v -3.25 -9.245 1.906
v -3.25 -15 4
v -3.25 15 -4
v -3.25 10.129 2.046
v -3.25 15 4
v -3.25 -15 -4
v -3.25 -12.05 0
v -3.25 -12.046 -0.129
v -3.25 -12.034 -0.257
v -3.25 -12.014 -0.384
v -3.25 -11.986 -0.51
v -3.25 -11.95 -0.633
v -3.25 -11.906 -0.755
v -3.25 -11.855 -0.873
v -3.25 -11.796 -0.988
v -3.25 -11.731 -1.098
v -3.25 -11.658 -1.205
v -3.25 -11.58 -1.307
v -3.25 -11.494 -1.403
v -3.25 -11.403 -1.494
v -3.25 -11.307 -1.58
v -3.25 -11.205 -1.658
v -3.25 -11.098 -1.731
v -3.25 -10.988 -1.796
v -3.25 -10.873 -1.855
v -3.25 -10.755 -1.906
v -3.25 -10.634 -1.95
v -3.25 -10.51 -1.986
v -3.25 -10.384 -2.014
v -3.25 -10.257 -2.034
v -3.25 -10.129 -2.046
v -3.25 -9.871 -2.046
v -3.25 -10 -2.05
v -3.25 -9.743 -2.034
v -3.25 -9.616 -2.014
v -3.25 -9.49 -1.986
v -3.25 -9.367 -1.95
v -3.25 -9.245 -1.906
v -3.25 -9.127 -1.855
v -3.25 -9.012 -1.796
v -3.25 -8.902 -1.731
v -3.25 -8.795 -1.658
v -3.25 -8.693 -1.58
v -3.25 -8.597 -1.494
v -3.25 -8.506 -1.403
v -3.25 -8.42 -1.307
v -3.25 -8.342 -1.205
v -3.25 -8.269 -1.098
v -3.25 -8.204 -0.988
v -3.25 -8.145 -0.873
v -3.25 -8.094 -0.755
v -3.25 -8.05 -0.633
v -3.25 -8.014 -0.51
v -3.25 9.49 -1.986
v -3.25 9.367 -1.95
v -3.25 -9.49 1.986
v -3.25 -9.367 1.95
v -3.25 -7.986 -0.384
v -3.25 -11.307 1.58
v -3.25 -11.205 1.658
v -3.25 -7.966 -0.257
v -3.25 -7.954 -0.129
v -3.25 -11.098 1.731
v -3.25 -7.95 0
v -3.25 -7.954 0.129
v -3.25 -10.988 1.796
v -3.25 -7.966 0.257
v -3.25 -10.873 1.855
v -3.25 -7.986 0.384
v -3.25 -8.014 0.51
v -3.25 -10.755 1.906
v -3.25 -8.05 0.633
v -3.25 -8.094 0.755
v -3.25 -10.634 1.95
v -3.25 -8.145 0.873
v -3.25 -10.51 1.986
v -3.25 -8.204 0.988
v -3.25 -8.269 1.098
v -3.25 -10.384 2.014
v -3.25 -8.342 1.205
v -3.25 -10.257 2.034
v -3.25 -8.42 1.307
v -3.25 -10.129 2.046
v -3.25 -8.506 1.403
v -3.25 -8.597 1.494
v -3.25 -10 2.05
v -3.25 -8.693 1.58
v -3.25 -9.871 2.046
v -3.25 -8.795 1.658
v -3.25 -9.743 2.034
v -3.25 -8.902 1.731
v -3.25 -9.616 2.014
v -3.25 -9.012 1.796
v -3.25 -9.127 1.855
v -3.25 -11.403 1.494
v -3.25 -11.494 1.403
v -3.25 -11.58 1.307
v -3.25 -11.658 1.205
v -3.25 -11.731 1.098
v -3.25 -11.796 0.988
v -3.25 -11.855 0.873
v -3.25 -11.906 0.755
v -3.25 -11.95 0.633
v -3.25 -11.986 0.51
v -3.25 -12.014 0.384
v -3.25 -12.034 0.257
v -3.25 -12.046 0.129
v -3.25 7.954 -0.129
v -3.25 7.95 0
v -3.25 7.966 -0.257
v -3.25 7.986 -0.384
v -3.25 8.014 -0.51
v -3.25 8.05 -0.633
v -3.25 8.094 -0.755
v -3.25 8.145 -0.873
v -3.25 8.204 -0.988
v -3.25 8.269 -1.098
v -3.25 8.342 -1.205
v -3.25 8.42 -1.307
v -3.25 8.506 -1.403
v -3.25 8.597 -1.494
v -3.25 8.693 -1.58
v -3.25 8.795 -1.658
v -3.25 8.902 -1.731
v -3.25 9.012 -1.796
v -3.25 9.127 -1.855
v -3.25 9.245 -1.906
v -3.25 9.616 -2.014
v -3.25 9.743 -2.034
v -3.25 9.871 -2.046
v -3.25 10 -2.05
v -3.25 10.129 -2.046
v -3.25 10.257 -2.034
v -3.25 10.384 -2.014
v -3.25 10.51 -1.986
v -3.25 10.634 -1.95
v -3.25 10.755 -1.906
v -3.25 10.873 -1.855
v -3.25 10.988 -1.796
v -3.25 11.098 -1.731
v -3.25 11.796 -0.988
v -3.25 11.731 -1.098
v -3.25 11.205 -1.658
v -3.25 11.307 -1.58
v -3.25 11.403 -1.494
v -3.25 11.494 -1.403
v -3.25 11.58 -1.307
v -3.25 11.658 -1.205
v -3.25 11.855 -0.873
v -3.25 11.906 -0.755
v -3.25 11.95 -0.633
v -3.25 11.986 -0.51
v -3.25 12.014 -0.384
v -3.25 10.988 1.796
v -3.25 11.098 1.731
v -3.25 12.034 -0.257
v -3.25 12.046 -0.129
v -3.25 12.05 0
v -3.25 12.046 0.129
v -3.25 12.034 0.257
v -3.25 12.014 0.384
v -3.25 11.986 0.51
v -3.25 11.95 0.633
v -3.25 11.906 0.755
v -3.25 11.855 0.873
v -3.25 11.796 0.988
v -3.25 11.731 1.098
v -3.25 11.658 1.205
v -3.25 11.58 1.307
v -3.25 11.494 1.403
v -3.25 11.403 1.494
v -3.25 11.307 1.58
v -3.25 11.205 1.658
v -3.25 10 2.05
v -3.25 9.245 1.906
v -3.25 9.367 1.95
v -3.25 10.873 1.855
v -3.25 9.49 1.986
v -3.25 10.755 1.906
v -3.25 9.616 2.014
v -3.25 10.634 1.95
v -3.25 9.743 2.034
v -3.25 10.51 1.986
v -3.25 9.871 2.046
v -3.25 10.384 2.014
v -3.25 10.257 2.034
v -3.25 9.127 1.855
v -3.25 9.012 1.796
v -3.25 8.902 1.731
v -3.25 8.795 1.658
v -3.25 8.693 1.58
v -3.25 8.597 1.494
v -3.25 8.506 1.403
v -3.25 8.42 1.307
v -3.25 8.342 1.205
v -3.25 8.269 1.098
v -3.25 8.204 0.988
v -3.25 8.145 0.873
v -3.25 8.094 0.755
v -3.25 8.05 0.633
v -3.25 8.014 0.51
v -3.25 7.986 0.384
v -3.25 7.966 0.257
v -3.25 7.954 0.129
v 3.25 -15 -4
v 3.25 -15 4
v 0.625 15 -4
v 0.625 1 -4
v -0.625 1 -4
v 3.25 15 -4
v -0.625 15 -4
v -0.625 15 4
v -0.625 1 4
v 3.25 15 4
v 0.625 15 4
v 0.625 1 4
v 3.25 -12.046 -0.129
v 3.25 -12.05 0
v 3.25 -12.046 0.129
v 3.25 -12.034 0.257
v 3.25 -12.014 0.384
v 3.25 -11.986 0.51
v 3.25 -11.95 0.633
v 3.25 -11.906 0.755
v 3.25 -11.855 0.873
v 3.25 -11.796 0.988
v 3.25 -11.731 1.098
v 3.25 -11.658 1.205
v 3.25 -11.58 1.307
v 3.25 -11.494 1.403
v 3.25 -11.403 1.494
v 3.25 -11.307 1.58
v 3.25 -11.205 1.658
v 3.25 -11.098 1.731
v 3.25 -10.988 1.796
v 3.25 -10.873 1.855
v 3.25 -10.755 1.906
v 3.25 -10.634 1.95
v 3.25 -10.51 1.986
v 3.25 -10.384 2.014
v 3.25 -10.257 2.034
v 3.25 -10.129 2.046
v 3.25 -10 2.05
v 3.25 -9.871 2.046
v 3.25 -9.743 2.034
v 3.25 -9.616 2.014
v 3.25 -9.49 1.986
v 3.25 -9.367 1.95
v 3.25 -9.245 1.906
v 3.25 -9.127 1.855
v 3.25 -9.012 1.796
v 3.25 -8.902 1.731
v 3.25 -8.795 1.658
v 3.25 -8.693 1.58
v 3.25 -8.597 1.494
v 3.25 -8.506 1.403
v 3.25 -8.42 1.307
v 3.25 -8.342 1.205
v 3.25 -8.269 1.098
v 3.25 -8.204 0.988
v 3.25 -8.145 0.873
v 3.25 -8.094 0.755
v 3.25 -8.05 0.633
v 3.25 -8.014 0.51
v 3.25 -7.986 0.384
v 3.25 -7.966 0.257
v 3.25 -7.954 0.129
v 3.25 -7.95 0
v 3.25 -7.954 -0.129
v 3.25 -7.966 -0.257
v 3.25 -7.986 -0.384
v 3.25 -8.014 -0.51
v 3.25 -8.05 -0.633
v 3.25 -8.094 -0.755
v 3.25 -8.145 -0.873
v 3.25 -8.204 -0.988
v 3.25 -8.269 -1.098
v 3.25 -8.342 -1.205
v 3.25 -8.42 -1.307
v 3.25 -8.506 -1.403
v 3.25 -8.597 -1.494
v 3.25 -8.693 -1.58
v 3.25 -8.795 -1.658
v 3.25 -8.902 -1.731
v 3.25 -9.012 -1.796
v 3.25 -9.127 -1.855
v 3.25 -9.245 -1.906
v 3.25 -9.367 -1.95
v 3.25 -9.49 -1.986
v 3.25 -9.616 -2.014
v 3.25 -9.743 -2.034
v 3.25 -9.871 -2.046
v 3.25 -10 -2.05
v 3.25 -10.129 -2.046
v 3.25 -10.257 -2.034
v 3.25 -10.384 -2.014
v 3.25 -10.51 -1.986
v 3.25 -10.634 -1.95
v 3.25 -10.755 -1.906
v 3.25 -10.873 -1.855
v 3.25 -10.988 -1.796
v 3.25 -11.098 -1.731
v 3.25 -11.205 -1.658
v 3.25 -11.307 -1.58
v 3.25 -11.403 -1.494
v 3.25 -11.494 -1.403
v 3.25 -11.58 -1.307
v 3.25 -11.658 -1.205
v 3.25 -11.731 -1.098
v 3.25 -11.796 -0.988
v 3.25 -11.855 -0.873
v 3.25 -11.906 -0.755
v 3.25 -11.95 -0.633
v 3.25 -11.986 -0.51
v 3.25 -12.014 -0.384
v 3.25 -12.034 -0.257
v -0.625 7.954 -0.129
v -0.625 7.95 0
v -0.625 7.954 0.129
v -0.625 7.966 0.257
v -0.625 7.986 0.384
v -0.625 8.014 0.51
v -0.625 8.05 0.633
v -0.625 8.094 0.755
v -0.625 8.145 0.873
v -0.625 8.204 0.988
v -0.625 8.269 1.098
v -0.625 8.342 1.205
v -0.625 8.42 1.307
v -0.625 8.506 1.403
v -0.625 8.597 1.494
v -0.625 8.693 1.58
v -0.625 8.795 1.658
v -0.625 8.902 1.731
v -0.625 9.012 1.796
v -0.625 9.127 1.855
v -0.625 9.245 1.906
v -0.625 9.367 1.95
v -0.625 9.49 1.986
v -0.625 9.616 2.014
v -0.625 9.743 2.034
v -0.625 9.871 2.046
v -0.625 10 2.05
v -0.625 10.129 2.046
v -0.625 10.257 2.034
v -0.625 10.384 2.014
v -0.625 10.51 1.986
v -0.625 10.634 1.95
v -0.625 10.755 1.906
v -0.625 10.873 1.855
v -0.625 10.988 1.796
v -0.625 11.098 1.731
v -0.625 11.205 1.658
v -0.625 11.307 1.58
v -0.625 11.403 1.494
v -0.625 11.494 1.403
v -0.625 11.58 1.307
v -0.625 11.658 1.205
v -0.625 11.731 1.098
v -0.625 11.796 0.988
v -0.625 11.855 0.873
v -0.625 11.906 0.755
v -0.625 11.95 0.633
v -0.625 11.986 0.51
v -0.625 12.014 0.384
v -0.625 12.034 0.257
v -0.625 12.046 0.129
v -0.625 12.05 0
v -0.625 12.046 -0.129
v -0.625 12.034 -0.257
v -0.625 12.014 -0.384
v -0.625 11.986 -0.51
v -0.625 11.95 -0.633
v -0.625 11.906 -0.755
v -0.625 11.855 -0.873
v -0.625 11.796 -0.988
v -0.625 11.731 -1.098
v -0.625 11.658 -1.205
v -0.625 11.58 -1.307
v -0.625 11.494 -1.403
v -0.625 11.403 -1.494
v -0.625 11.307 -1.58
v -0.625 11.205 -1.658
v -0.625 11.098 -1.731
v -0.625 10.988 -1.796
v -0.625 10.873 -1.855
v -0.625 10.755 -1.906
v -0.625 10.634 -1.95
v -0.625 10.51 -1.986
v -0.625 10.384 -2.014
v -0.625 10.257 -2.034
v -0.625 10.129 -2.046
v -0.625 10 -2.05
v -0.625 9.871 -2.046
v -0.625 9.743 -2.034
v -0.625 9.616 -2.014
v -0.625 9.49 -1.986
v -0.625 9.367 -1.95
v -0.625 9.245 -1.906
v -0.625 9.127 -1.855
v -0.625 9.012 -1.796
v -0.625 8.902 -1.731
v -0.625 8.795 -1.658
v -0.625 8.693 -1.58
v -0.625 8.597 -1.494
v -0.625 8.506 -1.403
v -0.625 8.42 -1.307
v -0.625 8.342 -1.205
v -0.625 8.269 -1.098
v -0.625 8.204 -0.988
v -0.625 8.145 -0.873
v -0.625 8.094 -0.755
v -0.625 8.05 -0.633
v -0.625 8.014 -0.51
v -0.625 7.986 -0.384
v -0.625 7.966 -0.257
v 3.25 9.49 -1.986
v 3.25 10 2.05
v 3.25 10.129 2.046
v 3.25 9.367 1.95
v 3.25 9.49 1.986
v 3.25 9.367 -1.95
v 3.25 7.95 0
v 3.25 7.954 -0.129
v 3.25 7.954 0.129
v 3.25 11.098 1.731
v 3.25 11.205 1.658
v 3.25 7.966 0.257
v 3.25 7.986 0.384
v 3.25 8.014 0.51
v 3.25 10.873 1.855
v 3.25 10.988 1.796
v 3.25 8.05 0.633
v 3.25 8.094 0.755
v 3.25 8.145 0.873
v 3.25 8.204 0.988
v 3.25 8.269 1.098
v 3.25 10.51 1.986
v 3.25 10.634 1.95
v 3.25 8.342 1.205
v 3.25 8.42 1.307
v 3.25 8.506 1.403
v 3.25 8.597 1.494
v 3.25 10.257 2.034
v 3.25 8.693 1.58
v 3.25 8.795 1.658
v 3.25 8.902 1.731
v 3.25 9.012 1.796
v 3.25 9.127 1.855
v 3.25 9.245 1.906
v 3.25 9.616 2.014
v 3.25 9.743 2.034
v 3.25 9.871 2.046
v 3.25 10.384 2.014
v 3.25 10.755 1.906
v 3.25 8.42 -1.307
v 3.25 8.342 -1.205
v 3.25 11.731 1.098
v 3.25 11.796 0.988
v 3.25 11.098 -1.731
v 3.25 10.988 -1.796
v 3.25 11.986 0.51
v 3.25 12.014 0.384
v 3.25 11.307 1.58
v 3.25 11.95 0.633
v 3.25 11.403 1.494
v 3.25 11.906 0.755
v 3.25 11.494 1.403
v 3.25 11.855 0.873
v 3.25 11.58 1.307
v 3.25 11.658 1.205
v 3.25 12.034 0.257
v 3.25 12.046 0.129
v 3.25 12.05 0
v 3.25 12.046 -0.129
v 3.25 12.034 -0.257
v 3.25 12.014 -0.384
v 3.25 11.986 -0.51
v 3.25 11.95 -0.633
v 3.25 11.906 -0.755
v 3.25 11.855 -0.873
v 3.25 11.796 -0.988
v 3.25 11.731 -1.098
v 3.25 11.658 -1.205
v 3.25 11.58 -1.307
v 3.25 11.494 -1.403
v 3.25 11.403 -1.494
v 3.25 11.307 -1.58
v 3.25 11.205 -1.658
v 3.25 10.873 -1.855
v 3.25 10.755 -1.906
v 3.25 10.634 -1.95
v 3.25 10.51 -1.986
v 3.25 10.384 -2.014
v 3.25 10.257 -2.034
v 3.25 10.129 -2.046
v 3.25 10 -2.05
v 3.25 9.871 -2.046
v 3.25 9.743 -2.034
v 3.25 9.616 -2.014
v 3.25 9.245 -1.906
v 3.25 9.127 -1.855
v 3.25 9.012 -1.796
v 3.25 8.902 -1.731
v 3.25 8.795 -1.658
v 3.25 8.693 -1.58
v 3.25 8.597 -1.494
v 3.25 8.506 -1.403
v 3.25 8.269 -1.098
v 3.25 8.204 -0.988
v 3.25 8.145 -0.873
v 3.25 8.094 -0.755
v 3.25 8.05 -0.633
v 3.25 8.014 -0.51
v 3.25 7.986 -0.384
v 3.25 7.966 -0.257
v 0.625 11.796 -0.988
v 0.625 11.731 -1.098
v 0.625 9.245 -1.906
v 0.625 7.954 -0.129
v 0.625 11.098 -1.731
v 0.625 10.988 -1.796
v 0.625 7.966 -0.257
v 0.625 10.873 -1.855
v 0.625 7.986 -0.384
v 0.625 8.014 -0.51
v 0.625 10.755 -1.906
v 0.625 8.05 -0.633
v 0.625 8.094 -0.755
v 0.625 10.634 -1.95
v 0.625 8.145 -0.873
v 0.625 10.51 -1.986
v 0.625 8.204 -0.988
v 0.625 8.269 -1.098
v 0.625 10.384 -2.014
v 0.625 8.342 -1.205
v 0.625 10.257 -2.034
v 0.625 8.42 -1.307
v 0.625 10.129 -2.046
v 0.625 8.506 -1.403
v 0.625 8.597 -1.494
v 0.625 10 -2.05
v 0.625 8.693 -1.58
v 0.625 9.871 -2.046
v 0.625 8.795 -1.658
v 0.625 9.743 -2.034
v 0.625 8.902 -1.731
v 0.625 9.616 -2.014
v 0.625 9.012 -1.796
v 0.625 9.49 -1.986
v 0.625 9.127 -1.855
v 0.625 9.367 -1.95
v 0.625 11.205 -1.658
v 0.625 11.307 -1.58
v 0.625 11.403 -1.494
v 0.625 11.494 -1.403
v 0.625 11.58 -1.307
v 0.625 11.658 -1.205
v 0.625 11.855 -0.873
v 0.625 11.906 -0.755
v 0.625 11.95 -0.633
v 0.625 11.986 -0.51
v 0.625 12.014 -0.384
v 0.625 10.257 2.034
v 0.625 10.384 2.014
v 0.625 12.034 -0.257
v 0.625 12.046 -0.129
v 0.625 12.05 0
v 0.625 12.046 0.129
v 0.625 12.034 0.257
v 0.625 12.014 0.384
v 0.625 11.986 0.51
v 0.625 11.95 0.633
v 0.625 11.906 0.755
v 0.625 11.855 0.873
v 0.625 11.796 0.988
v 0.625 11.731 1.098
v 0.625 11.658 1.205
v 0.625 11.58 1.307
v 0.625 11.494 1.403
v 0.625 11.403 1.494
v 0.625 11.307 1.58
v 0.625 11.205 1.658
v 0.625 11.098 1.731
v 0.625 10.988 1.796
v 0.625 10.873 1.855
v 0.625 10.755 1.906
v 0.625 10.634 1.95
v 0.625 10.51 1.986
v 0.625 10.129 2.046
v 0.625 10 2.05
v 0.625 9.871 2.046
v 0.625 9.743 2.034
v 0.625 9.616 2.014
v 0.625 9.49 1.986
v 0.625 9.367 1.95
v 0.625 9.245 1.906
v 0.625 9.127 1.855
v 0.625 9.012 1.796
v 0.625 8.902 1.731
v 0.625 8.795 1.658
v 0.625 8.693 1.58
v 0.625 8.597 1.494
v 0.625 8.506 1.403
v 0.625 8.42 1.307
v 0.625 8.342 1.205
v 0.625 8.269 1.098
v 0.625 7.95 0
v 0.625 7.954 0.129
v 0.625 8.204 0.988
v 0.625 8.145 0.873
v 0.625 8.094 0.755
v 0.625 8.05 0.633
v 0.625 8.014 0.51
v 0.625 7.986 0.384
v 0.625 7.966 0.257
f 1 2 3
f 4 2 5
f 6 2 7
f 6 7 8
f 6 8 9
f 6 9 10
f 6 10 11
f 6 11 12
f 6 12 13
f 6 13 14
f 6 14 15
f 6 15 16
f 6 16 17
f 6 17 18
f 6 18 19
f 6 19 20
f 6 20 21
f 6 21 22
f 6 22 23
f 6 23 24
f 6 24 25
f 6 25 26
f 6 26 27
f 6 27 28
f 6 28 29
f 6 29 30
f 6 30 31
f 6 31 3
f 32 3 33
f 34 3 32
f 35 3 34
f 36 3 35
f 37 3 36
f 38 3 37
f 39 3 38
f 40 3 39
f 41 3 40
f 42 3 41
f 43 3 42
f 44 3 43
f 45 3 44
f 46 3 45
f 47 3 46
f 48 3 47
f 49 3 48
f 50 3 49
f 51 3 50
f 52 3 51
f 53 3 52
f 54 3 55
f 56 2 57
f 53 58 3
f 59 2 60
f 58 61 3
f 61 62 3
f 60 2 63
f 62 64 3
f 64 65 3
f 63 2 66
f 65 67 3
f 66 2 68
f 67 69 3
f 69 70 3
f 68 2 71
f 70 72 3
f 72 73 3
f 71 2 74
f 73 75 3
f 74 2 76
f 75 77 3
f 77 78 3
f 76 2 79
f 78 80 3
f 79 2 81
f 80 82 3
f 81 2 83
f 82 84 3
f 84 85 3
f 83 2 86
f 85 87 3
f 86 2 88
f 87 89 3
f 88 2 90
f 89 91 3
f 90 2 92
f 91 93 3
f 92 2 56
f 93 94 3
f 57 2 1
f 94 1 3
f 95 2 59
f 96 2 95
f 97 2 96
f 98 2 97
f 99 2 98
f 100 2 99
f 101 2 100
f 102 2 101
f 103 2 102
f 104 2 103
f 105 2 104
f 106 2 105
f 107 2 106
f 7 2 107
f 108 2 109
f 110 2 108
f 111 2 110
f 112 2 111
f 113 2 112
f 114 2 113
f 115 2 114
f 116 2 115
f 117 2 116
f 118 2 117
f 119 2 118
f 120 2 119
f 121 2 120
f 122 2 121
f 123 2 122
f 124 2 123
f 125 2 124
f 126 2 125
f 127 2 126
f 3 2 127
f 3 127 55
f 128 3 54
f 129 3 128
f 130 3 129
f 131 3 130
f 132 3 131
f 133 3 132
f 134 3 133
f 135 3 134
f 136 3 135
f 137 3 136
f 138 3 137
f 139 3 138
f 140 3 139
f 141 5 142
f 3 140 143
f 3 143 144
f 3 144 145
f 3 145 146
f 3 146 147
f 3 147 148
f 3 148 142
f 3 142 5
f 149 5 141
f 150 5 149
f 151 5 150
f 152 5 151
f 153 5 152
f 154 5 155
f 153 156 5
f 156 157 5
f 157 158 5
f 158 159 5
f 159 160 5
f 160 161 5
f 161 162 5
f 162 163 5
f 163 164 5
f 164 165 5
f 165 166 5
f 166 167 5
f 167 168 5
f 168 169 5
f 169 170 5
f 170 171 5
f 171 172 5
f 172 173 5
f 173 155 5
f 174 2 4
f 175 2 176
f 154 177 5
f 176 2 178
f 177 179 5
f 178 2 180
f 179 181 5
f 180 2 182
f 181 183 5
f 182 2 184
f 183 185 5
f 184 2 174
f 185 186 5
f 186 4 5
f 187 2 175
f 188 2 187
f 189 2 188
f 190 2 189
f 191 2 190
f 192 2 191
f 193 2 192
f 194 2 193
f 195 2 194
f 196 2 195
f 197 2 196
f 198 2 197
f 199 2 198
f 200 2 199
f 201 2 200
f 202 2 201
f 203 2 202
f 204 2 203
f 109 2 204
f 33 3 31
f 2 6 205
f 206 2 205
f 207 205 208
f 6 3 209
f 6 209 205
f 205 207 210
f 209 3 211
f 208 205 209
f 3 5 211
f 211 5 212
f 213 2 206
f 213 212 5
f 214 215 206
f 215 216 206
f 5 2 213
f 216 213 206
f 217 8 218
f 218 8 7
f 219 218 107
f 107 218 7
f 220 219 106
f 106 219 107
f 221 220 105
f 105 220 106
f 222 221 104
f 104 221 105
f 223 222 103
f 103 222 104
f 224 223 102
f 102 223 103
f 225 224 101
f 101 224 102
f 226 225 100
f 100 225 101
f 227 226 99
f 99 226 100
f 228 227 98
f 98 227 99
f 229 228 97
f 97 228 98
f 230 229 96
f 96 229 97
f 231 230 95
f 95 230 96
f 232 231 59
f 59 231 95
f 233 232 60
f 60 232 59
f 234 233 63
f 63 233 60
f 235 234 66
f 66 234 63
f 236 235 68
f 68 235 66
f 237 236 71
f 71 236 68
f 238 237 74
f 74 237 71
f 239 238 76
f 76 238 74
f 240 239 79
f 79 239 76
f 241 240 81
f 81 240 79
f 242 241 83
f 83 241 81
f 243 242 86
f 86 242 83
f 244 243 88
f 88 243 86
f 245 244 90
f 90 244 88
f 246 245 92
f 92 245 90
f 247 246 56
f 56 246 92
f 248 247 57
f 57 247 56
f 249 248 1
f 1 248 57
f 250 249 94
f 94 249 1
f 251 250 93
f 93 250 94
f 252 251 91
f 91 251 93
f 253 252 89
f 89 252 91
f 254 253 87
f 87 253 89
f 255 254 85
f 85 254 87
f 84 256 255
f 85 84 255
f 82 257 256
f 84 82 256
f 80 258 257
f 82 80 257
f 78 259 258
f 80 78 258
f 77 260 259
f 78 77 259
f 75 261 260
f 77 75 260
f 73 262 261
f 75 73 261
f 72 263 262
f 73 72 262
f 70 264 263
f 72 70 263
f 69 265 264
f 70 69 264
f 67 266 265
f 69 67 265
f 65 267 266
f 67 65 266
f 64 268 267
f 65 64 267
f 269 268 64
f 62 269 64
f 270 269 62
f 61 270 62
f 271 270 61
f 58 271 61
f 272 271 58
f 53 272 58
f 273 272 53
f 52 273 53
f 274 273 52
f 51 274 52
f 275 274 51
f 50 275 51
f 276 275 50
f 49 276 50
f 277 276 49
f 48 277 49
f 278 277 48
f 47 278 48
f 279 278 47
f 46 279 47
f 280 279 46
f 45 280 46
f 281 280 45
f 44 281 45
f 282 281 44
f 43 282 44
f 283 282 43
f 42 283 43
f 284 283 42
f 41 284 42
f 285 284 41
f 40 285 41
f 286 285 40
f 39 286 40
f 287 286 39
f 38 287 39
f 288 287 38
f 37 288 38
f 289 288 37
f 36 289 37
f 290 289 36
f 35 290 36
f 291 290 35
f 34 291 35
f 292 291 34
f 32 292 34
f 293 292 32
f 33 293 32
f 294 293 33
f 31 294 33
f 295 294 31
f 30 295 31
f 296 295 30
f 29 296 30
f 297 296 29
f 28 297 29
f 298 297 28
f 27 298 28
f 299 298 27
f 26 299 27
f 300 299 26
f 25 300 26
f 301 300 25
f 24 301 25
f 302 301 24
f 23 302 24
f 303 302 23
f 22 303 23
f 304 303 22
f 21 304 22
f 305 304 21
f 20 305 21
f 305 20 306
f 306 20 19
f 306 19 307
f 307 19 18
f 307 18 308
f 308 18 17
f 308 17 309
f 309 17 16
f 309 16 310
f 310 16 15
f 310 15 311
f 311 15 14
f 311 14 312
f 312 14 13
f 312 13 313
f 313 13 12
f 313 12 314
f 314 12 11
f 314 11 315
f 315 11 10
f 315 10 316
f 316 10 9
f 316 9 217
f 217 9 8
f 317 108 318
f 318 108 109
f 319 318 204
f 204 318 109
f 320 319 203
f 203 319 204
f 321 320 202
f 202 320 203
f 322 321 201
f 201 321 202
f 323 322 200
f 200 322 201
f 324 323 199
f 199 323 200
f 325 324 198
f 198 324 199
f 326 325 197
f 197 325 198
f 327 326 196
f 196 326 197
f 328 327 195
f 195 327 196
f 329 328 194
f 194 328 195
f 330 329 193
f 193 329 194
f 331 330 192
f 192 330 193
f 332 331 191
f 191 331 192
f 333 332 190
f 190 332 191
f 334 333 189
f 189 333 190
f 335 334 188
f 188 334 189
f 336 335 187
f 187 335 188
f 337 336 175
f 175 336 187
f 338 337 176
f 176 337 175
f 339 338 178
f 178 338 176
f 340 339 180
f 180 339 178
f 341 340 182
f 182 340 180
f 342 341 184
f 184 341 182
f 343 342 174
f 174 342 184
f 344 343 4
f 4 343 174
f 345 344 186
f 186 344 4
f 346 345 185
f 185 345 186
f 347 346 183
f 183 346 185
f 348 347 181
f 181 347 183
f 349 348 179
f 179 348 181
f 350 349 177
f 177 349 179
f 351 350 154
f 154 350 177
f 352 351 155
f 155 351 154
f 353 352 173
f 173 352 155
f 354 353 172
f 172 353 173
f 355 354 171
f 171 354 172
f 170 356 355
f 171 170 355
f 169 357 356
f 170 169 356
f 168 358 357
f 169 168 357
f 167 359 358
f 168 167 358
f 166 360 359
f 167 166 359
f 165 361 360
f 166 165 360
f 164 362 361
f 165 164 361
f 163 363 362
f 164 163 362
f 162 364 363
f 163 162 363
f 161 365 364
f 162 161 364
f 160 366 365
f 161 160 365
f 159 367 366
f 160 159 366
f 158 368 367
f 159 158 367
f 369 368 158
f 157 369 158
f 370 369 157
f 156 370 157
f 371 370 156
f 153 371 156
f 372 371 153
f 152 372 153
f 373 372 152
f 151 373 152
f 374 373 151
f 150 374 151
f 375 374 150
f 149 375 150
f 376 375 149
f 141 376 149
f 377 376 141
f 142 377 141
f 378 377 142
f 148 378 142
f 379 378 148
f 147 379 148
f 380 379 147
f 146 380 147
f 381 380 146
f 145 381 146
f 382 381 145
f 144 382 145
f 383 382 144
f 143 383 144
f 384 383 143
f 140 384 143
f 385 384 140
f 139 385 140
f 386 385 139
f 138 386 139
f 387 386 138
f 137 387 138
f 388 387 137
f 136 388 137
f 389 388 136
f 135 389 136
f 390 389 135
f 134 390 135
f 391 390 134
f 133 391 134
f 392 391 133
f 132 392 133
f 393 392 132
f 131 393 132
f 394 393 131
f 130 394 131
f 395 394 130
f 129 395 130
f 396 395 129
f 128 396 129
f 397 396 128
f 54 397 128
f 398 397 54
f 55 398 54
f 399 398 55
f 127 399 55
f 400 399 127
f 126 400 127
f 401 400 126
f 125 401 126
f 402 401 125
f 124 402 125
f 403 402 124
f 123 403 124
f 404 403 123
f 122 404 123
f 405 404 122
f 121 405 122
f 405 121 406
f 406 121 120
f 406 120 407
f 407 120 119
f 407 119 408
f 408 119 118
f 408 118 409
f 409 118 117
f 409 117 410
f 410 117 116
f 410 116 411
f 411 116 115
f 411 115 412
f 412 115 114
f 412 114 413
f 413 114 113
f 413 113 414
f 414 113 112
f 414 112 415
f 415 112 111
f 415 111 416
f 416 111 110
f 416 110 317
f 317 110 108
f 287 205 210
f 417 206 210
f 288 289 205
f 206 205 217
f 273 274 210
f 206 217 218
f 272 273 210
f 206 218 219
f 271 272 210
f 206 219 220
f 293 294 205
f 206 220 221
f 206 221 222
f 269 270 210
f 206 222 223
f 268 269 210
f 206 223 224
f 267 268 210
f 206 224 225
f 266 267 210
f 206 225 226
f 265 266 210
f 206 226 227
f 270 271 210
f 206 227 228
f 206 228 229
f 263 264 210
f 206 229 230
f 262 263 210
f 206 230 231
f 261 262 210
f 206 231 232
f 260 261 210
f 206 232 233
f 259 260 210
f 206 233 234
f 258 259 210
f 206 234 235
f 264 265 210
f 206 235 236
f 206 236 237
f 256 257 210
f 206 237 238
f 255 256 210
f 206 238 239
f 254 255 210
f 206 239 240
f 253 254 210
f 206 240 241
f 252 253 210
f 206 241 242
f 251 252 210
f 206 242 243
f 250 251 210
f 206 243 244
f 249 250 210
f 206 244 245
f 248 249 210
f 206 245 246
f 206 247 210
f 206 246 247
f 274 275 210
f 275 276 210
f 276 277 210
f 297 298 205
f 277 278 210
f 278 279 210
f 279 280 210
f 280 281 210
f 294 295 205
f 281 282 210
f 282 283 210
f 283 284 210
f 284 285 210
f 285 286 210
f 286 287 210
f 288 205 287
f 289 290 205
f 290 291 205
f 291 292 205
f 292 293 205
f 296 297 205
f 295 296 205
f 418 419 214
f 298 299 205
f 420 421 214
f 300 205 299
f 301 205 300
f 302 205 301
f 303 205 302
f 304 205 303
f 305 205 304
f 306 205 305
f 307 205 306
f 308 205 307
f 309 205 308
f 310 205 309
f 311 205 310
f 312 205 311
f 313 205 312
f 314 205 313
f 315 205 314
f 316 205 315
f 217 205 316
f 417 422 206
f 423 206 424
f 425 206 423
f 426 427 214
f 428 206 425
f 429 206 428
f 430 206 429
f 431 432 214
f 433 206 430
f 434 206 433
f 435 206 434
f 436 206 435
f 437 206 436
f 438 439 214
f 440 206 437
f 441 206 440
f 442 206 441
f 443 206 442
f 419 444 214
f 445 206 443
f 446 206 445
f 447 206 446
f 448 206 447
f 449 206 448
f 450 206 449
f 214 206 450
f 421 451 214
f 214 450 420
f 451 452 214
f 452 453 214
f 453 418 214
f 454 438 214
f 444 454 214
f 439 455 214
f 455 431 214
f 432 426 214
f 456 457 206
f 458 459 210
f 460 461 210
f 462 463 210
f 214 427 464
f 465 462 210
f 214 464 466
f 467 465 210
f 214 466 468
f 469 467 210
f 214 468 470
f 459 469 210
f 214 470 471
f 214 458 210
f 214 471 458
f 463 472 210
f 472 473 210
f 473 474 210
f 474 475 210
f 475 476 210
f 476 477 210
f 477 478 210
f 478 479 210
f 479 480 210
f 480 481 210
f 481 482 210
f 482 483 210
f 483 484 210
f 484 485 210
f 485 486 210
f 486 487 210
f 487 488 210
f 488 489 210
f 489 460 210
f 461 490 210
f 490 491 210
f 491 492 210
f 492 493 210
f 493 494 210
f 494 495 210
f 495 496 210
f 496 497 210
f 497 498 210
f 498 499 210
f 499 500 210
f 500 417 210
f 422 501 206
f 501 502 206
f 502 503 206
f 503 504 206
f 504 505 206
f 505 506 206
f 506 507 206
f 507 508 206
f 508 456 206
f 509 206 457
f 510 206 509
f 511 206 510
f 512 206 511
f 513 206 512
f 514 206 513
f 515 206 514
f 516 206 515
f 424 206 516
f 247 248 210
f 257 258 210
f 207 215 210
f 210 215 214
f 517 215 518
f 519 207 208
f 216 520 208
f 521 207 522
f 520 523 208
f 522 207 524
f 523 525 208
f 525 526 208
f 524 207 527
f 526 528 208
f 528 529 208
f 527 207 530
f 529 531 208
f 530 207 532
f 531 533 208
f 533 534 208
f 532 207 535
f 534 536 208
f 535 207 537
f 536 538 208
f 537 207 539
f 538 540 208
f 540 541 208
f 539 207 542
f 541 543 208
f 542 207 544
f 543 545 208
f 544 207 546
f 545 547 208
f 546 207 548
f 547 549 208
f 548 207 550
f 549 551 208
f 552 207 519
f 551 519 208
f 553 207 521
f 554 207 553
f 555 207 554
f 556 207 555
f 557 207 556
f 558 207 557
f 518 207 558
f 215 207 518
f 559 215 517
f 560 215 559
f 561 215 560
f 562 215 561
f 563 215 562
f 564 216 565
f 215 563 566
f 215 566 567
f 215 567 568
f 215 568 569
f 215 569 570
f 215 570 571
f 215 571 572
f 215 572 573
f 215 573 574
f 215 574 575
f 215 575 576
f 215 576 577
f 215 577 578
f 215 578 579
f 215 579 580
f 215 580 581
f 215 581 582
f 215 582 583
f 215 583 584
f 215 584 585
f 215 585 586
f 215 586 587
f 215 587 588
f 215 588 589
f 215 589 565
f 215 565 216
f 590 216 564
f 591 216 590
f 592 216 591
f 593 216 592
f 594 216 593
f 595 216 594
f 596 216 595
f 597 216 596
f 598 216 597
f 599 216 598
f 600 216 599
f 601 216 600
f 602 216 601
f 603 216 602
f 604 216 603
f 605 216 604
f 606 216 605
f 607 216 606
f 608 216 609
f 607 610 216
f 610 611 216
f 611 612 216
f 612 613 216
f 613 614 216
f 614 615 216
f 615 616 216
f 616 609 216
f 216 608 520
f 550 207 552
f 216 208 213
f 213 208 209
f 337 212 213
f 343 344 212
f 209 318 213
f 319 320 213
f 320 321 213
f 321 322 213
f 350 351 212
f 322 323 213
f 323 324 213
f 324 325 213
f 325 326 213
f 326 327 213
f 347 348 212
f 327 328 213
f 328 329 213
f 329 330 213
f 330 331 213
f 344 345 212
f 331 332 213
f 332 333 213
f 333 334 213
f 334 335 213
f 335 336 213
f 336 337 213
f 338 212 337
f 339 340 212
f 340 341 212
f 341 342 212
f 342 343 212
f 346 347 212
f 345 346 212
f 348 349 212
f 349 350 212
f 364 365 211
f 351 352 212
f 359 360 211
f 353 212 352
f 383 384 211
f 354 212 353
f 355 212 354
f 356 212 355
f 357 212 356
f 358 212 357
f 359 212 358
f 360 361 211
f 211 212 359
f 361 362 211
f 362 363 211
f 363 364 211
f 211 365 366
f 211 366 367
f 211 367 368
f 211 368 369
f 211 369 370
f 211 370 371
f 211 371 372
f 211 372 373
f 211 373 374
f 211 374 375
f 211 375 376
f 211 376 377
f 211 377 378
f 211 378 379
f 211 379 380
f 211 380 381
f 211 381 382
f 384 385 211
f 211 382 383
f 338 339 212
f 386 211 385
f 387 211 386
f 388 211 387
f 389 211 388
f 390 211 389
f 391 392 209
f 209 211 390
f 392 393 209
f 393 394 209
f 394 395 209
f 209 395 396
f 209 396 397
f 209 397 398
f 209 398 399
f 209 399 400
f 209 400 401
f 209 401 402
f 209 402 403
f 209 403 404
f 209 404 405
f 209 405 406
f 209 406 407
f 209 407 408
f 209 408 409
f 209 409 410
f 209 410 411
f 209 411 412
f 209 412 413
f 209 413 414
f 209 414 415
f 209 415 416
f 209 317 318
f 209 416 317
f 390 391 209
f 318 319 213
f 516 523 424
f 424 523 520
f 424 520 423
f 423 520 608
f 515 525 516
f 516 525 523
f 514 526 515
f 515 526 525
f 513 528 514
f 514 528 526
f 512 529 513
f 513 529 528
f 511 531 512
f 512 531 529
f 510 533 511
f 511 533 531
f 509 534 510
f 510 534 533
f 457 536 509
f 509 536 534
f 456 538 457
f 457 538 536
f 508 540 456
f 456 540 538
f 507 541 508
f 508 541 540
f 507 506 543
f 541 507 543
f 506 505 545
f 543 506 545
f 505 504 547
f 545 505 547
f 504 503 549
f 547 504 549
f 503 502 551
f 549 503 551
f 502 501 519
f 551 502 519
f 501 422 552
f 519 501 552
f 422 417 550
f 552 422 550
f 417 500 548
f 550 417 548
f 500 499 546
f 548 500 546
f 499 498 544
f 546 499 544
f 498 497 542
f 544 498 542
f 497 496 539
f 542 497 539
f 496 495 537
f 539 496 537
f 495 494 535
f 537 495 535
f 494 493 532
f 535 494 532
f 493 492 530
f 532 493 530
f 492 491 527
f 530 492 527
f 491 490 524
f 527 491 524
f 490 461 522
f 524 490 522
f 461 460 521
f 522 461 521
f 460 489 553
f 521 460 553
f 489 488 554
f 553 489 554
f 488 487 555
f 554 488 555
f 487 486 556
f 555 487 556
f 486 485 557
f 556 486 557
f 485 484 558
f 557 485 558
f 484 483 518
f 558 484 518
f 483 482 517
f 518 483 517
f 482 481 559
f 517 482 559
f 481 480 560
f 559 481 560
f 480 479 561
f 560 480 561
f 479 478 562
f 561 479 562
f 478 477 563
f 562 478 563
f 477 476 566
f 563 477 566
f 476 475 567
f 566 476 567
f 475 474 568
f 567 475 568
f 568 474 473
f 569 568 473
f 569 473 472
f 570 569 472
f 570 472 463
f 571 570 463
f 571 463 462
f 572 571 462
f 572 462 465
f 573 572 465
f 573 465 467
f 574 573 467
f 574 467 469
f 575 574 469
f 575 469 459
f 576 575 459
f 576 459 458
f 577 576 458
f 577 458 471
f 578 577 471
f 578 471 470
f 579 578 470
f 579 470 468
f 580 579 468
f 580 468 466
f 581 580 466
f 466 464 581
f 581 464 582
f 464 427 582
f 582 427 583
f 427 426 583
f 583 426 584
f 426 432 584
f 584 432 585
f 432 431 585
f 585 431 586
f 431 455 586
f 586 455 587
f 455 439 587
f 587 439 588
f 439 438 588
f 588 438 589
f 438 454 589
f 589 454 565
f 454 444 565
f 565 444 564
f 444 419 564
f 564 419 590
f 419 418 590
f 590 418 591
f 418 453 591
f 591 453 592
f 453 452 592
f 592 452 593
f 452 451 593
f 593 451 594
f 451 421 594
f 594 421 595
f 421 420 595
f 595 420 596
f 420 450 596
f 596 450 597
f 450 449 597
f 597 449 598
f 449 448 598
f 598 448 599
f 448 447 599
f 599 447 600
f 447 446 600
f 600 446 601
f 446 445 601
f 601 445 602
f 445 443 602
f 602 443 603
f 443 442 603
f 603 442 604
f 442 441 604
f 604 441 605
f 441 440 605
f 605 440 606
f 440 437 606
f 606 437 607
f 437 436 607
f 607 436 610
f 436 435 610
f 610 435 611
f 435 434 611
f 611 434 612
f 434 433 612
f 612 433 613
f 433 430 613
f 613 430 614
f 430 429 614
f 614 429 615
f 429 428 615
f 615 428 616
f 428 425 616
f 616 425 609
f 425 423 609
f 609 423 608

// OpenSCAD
// file: ucon_config.scad
tubeOD = 0.92*25.4+0.25;	//0.92", thin-wall 3/4" conduit +0.4 clearance
tubeID = 20.828;	// 0.82", thin-wall 3/4" conduit
wallthick = 7;		// wall thickness for the tube
clearOD = 0.5;		// tube clearance
screwOD = 4.7;		// clearance for M4 or SAE size 8 screw
screwthick = 3;		// wall thickness for the screw
totalheight = 25;
clearance = 0.5;
tolerance = 0.1;
oringthick = 2.5;
oringOD = 28.702;	// oring size 119 (use 118 for build)
overlap = 0.05;
clearlen = 5;

rod_spacing = 20; // spacing of rods in the x-ends
bushingOD = 15;  // LM8UU bushing OD
bushingL = 15.0; // LM8UU bushing dist between grooves
screw_sep = bushingOD/2+rod_spacing/2+3;
hotendsep = 11.65;


ctcdist = 50;
// main file
include <ucon_config.scad>
use <ucon_functions.scad>
use <MCAD/motors.scad>
use <MCAD/nuts_and_bolts.scad>
$fn=100;

belt_thickness = 1.25;
screw_sep = 20;
beltW=6;

difference(){
cube([6.5,30,8],center=true);
translate([0,30/2+screw_sep/2-2-beltW-1,0]) cube([belt_thickness,30,8+1],center=true);
translate([0,-screw_sep/2,0]) rotate([0,90,0]) cylinder(r=2+0.05,h=10,center=true);
translate([0,screw_sep/2,0]) rotate([0,90,0]) cylinder(r=2+0.05,h=10,center=true);
}
